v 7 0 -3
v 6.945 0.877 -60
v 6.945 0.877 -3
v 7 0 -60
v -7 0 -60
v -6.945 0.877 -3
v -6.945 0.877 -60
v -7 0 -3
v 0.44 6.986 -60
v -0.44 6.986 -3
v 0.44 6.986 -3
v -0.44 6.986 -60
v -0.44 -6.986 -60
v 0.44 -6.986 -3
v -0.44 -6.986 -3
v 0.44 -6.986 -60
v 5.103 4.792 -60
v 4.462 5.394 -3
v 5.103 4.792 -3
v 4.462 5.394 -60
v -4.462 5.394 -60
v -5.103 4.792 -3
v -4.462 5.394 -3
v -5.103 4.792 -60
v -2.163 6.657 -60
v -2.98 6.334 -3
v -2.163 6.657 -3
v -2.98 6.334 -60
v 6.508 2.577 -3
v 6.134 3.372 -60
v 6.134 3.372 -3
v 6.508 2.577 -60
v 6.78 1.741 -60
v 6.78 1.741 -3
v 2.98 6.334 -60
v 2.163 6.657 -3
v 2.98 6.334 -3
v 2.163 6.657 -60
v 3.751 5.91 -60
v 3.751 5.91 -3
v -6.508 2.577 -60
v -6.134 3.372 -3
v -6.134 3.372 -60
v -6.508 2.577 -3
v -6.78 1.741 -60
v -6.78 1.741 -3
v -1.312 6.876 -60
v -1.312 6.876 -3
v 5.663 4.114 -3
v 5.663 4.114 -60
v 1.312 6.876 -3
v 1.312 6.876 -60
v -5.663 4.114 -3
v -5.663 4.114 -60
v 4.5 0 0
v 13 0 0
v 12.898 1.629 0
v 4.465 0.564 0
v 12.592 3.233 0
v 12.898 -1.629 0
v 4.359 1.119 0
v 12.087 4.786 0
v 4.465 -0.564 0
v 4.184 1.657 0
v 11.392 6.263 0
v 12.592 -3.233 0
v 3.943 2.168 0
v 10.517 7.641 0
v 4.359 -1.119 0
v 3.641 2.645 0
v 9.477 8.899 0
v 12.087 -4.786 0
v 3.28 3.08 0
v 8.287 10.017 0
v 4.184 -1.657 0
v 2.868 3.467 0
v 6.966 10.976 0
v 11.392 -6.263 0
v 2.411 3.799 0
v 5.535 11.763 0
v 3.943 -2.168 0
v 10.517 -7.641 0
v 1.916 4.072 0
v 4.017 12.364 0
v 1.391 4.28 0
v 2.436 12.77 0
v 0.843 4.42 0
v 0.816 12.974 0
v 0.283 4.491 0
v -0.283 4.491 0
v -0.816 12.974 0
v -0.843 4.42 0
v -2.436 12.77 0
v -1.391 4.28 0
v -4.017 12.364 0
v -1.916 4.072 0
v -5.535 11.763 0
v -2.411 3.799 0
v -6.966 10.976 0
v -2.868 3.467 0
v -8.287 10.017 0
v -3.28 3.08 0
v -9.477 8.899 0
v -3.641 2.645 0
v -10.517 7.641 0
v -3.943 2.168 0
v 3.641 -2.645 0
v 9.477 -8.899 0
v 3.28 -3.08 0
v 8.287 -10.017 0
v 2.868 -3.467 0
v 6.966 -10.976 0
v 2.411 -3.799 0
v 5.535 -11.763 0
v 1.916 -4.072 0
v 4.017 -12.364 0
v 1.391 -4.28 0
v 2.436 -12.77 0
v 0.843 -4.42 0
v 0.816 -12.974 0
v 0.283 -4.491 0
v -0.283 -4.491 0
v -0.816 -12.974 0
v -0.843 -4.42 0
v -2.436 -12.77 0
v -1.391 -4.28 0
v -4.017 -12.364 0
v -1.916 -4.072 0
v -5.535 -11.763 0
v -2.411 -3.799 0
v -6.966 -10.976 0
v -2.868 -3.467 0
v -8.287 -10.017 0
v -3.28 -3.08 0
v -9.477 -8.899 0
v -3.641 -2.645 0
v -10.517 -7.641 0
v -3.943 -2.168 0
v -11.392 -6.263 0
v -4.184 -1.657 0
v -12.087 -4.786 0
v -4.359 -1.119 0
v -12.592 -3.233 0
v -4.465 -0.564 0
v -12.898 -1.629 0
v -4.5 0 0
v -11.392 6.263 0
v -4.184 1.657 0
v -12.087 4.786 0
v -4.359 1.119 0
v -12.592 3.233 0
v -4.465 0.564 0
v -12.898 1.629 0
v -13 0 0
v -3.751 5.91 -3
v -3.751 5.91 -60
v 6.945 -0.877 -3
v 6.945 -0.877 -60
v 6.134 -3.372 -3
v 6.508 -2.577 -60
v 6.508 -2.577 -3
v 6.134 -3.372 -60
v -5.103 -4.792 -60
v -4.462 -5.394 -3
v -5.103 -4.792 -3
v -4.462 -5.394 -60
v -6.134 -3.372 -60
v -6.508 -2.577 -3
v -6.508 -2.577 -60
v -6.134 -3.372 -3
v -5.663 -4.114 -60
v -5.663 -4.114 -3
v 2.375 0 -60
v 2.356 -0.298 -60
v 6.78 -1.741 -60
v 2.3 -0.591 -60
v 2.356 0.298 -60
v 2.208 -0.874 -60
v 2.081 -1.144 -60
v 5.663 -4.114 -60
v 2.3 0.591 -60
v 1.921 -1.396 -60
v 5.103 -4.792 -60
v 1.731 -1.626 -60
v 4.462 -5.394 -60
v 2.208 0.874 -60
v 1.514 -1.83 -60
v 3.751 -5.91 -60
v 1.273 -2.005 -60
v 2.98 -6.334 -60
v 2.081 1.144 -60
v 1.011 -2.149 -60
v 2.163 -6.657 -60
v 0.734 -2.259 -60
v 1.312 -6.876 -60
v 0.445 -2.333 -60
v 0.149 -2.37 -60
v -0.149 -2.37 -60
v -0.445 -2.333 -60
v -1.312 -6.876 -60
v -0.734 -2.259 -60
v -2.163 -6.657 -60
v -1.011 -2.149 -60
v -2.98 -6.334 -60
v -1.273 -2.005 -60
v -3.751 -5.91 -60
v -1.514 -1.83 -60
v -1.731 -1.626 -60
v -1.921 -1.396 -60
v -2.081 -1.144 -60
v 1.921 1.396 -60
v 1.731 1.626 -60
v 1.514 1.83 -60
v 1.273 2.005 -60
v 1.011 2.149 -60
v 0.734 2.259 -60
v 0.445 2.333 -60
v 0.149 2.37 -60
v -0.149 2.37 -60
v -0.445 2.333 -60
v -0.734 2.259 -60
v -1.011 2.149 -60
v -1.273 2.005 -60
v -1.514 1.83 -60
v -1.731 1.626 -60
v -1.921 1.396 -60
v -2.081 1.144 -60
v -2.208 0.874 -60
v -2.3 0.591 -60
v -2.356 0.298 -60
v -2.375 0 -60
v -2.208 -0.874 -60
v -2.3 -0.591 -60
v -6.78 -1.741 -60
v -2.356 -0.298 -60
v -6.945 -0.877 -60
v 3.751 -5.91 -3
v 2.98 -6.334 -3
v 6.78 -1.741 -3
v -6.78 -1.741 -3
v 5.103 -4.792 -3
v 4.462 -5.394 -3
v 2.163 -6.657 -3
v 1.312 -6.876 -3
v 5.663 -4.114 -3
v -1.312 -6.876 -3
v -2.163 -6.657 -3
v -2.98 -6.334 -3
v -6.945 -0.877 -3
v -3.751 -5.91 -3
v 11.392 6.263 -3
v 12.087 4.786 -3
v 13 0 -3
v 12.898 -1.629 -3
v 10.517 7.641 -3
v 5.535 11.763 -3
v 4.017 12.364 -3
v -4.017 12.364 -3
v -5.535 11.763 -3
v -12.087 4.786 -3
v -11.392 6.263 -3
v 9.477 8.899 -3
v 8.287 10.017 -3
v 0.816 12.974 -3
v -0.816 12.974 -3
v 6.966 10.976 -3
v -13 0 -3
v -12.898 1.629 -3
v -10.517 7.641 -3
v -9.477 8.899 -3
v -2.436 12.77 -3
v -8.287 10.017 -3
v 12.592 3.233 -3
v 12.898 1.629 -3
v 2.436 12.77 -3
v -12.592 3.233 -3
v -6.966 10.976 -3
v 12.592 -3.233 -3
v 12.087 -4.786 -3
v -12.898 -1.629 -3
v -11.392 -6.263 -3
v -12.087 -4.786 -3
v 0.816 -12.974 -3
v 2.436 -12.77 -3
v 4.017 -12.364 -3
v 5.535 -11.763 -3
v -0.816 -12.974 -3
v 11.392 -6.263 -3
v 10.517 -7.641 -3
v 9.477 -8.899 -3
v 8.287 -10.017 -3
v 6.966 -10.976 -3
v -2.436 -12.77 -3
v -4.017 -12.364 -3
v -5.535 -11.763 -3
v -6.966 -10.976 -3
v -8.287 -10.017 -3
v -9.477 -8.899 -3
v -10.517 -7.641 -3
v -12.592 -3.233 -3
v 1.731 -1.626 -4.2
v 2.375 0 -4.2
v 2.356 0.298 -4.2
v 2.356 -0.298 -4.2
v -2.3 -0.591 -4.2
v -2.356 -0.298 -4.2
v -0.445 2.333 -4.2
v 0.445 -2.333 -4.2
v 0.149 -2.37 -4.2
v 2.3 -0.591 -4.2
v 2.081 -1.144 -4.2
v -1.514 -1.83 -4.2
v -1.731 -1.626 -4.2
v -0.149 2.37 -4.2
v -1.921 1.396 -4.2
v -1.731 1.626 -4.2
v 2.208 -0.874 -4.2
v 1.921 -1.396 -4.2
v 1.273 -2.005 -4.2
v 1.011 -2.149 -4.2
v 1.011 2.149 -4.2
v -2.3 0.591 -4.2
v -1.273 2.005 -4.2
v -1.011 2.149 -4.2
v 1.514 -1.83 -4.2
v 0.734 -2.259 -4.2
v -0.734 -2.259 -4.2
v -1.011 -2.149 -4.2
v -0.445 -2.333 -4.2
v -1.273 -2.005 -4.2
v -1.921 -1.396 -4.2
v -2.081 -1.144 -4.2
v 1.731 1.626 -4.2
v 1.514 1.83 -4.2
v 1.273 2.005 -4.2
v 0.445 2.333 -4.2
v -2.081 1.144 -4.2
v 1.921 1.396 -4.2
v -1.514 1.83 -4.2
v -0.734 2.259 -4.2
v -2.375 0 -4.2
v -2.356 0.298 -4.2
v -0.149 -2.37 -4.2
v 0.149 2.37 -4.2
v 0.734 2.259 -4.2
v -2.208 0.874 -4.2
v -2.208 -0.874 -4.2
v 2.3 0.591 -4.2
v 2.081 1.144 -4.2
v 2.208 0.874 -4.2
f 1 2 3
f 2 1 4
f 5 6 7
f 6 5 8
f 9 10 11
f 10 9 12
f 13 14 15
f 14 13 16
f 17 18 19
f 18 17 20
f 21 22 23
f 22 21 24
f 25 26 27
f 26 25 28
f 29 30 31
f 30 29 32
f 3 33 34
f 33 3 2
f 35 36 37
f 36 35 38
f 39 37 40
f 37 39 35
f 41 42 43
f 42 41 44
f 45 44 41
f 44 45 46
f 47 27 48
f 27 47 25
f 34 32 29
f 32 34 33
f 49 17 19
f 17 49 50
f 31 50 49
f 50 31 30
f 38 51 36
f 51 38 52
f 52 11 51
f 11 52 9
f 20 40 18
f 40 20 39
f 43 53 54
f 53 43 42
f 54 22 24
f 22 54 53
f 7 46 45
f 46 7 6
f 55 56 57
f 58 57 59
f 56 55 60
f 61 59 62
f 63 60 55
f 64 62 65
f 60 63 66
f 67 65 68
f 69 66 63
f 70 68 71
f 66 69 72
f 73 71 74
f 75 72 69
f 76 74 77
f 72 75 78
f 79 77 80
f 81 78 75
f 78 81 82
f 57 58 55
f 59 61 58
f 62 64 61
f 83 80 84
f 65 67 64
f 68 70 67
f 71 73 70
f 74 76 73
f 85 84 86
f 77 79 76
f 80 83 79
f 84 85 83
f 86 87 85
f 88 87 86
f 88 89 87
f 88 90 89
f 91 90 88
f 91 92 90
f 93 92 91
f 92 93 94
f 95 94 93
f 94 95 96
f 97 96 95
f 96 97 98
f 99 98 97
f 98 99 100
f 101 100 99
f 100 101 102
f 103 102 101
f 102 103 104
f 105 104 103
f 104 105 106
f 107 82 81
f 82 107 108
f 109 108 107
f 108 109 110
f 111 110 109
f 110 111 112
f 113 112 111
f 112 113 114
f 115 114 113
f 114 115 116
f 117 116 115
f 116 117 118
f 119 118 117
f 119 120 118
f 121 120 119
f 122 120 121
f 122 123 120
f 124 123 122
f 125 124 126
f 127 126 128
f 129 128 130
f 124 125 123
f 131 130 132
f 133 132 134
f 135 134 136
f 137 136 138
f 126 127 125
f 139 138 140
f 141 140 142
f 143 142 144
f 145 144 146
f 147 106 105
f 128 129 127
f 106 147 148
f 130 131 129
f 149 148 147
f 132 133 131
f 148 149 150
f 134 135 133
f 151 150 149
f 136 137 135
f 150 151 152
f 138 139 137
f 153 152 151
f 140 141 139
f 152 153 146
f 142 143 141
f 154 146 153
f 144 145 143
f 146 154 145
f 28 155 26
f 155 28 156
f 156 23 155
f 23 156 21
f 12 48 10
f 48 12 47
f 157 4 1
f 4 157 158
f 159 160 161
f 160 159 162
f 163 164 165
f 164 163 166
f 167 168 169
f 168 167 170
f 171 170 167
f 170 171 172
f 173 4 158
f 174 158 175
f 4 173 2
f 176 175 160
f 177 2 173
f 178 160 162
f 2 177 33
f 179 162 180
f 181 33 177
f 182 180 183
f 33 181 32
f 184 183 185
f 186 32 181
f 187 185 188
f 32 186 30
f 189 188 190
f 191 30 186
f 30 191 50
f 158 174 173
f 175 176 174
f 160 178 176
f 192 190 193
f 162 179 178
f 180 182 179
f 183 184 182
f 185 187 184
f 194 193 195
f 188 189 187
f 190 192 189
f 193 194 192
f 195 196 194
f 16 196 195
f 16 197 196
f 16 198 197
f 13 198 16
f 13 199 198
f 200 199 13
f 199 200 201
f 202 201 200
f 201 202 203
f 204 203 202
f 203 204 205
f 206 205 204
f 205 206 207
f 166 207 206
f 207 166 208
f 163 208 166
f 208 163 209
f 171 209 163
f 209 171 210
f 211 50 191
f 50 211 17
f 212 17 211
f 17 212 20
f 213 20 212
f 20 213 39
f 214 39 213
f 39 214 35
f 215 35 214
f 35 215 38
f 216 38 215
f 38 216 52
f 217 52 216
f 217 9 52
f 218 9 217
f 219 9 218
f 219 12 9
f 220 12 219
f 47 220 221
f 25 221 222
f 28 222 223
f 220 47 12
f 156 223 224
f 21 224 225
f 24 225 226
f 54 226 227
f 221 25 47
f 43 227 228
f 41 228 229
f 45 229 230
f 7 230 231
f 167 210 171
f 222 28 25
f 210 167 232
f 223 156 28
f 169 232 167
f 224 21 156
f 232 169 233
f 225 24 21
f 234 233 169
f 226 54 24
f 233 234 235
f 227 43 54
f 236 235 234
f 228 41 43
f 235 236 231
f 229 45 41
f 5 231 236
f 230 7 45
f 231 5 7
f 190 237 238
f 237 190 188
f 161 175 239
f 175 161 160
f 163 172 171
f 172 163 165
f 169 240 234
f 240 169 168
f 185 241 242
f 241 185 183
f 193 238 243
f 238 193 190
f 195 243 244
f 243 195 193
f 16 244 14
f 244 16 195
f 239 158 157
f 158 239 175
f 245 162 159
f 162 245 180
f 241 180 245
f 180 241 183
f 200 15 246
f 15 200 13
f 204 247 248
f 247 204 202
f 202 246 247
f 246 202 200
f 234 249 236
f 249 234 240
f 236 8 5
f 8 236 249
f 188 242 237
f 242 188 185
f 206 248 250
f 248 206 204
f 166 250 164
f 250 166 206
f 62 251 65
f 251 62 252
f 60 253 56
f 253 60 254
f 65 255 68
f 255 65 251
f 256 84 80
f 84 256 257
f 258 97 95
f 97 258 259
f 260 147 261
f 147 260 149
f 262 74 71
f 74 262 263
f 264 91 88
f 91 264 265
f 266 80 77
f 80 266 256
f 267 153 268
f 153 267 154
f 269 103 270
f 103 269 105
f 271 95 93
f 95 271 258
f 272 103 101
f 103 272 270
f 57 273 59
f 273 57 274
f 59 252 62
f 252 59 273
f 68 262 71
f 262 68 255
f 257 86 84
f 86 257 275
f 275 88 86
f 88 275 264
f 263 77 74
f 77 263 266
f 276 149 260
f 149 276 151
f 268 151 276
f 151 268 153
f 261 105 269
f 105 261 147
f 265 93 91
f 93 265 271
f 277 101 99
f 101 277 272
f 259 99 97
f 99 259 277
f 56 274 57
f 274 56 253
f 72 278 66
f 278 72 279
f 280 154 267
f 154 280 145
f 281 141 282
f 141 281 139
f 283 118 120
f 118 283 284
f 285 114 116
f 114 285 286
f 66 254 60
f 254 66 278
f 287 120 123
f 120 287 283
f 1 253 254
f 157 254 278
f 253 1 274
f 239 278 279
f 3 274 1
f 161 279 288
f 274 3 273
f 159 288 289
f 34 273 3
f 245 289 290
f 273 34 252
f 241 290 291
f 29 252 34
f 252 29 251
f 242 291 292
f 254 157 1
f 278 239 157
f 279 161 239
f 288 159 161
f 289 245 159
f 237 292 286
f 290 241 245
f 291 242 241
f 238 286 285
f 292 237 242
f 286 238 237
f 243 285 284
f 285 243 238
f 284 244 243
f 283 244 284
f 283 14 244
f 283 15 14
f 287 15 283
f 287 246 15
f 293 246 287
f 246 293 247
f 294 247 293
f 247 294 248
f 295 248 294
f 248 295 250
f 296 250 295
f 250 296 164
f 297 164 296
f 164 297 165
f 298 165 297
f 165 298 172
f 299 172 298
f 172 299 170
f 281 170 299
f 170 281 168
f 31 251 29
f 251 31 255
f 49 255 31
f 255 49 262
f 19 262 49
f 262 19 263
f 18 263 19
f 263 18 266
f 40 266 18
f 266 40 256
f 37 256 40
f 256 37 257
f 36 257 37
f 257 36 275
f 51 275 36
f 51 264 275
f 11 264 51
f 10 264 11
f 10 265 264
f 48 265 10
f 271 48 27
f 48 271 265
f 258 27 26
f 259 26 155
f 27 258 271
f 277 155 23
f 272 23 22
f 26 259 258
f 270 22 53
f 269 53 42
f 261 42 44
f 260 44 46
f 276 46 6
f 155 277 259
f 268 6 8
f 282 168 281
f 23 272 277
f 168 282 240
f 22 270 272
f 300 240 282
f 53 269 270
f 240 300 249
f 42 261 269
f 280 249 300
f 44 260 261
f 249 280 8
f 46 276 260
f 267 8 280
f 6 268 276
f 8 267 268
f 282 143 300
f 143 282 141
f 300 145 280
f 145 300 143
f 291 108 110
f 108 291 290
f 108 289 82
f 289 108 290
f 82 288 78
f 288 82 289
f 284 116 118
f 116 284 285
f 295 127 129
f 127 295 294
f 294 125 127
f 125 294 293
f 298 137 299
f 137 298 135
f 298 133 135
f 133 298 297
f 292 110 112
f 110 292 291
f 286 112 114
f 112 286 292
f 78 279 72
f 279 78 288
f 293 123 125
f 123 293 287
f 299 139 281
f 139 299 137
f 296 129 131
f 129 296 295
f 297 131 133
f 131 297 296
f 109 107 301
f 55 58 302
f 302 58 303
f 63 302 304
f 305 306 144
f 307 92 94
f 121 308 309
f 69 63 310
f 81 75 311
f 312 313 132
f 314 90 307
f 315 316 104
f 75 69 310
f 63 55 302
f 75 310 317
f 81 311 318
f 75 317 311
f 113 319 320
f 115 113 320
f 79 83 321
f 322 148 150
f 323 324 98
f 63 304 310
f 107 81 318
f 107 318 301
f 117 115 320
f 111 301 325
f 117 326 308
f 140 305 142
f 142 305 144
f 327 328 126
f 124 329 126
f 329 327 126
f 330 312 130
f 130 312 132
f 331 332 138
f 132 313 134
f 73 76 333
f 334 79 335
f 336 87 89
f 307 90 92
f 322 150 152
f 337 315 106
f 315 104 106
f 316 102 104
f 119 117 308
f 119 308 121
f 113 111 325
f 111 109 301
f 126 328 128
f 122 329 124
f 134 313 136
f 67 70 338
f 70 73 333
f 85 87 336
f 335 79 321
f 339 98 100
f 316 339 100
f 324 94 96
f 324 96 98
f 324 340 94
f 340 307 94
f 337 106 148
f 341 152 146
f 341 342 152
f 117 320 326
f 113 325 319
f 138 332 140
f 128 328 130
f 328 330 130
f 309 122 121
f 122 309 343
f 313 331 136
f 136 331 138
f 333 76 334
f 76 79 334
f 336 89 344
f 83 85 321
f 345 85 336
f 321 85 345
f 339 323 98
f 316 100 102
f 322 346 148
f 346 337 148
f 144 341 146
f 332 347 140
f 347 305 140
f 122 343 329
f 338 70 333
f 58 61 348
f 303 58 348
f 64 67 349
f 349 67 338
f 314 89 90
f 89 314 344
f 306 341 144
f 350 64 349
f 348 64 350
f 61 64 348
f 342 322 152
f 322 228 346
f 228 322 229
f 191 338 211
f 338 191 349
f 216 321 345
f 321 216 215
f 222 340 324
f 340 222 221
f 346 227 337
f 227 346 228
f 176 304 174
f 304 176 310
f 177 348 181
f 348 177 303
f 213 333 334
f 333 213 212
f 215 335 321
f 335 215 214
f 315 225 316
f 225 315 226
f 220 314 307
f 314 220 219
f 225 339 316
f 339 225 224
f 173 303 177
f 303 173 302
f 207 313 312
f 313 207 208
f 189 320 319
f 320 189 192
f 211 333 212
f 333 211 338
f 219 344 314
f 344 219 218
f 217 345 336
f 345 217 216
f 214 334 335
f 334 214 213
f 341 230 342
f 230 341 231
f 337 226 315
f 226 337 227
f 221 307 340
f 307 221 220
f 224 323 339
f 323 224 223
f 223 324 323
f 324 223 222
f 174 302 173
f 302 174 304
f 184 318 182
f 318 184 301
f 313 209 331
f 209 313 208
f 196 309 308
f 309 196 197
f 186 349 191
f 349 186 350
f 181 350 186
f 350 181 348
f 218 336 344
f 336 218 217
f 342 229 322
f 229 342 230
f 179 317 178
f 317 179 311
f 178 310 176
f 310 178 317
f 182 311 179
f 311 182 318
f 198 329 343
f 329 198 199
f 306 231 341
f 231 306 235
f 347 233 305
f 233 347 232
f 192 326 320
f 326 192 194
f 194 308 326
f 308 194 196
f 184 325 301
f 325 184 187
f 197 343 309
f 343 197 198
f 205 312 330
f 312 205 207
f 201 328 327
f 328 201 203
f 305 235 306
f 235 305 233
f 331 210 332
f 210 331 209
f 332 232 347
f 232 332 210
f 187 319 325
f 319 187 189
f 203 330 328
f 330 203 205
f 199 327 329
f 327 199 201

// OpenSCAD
$fn = 50;


difference() {
	union() {
		translate(v = [0, 0, -60.0000000000]) {
			cylinder(h = 60, r = 7.0000000000);
		}
		translate(v = [0, 0, -3.0000000000]) {
			cylinder(h = 3, r = 13.0000000000);
		}
	}
	union() {
		translate(v = [0, 0, 0]) {
			rotate(a = [0, 0, 0]) {
				difference() {
					union() {
						#translate(v = [0, 0, -60.0000000000]) {
							cylinder(h = 60, r = 2.2500000000);
						}
						#translate(v = [0, 0, -4.2000000000]) {
							cylinder(h = 4.2000000000, r = 7.0000000000, r1 = 2.3750000000, r2 = 4.5000000000);
						}
						#translate(v = [0, 0, -60.0000000000]) {
							cylinder(h = 60, r = 2.3750000000);
						}
						#translate(v = [0, 0, -60.0000000000]) {
							cylinder(h = 60, r = 2.2500000000);
						}
					}
					union();
				}
			}
		}
	}
}
